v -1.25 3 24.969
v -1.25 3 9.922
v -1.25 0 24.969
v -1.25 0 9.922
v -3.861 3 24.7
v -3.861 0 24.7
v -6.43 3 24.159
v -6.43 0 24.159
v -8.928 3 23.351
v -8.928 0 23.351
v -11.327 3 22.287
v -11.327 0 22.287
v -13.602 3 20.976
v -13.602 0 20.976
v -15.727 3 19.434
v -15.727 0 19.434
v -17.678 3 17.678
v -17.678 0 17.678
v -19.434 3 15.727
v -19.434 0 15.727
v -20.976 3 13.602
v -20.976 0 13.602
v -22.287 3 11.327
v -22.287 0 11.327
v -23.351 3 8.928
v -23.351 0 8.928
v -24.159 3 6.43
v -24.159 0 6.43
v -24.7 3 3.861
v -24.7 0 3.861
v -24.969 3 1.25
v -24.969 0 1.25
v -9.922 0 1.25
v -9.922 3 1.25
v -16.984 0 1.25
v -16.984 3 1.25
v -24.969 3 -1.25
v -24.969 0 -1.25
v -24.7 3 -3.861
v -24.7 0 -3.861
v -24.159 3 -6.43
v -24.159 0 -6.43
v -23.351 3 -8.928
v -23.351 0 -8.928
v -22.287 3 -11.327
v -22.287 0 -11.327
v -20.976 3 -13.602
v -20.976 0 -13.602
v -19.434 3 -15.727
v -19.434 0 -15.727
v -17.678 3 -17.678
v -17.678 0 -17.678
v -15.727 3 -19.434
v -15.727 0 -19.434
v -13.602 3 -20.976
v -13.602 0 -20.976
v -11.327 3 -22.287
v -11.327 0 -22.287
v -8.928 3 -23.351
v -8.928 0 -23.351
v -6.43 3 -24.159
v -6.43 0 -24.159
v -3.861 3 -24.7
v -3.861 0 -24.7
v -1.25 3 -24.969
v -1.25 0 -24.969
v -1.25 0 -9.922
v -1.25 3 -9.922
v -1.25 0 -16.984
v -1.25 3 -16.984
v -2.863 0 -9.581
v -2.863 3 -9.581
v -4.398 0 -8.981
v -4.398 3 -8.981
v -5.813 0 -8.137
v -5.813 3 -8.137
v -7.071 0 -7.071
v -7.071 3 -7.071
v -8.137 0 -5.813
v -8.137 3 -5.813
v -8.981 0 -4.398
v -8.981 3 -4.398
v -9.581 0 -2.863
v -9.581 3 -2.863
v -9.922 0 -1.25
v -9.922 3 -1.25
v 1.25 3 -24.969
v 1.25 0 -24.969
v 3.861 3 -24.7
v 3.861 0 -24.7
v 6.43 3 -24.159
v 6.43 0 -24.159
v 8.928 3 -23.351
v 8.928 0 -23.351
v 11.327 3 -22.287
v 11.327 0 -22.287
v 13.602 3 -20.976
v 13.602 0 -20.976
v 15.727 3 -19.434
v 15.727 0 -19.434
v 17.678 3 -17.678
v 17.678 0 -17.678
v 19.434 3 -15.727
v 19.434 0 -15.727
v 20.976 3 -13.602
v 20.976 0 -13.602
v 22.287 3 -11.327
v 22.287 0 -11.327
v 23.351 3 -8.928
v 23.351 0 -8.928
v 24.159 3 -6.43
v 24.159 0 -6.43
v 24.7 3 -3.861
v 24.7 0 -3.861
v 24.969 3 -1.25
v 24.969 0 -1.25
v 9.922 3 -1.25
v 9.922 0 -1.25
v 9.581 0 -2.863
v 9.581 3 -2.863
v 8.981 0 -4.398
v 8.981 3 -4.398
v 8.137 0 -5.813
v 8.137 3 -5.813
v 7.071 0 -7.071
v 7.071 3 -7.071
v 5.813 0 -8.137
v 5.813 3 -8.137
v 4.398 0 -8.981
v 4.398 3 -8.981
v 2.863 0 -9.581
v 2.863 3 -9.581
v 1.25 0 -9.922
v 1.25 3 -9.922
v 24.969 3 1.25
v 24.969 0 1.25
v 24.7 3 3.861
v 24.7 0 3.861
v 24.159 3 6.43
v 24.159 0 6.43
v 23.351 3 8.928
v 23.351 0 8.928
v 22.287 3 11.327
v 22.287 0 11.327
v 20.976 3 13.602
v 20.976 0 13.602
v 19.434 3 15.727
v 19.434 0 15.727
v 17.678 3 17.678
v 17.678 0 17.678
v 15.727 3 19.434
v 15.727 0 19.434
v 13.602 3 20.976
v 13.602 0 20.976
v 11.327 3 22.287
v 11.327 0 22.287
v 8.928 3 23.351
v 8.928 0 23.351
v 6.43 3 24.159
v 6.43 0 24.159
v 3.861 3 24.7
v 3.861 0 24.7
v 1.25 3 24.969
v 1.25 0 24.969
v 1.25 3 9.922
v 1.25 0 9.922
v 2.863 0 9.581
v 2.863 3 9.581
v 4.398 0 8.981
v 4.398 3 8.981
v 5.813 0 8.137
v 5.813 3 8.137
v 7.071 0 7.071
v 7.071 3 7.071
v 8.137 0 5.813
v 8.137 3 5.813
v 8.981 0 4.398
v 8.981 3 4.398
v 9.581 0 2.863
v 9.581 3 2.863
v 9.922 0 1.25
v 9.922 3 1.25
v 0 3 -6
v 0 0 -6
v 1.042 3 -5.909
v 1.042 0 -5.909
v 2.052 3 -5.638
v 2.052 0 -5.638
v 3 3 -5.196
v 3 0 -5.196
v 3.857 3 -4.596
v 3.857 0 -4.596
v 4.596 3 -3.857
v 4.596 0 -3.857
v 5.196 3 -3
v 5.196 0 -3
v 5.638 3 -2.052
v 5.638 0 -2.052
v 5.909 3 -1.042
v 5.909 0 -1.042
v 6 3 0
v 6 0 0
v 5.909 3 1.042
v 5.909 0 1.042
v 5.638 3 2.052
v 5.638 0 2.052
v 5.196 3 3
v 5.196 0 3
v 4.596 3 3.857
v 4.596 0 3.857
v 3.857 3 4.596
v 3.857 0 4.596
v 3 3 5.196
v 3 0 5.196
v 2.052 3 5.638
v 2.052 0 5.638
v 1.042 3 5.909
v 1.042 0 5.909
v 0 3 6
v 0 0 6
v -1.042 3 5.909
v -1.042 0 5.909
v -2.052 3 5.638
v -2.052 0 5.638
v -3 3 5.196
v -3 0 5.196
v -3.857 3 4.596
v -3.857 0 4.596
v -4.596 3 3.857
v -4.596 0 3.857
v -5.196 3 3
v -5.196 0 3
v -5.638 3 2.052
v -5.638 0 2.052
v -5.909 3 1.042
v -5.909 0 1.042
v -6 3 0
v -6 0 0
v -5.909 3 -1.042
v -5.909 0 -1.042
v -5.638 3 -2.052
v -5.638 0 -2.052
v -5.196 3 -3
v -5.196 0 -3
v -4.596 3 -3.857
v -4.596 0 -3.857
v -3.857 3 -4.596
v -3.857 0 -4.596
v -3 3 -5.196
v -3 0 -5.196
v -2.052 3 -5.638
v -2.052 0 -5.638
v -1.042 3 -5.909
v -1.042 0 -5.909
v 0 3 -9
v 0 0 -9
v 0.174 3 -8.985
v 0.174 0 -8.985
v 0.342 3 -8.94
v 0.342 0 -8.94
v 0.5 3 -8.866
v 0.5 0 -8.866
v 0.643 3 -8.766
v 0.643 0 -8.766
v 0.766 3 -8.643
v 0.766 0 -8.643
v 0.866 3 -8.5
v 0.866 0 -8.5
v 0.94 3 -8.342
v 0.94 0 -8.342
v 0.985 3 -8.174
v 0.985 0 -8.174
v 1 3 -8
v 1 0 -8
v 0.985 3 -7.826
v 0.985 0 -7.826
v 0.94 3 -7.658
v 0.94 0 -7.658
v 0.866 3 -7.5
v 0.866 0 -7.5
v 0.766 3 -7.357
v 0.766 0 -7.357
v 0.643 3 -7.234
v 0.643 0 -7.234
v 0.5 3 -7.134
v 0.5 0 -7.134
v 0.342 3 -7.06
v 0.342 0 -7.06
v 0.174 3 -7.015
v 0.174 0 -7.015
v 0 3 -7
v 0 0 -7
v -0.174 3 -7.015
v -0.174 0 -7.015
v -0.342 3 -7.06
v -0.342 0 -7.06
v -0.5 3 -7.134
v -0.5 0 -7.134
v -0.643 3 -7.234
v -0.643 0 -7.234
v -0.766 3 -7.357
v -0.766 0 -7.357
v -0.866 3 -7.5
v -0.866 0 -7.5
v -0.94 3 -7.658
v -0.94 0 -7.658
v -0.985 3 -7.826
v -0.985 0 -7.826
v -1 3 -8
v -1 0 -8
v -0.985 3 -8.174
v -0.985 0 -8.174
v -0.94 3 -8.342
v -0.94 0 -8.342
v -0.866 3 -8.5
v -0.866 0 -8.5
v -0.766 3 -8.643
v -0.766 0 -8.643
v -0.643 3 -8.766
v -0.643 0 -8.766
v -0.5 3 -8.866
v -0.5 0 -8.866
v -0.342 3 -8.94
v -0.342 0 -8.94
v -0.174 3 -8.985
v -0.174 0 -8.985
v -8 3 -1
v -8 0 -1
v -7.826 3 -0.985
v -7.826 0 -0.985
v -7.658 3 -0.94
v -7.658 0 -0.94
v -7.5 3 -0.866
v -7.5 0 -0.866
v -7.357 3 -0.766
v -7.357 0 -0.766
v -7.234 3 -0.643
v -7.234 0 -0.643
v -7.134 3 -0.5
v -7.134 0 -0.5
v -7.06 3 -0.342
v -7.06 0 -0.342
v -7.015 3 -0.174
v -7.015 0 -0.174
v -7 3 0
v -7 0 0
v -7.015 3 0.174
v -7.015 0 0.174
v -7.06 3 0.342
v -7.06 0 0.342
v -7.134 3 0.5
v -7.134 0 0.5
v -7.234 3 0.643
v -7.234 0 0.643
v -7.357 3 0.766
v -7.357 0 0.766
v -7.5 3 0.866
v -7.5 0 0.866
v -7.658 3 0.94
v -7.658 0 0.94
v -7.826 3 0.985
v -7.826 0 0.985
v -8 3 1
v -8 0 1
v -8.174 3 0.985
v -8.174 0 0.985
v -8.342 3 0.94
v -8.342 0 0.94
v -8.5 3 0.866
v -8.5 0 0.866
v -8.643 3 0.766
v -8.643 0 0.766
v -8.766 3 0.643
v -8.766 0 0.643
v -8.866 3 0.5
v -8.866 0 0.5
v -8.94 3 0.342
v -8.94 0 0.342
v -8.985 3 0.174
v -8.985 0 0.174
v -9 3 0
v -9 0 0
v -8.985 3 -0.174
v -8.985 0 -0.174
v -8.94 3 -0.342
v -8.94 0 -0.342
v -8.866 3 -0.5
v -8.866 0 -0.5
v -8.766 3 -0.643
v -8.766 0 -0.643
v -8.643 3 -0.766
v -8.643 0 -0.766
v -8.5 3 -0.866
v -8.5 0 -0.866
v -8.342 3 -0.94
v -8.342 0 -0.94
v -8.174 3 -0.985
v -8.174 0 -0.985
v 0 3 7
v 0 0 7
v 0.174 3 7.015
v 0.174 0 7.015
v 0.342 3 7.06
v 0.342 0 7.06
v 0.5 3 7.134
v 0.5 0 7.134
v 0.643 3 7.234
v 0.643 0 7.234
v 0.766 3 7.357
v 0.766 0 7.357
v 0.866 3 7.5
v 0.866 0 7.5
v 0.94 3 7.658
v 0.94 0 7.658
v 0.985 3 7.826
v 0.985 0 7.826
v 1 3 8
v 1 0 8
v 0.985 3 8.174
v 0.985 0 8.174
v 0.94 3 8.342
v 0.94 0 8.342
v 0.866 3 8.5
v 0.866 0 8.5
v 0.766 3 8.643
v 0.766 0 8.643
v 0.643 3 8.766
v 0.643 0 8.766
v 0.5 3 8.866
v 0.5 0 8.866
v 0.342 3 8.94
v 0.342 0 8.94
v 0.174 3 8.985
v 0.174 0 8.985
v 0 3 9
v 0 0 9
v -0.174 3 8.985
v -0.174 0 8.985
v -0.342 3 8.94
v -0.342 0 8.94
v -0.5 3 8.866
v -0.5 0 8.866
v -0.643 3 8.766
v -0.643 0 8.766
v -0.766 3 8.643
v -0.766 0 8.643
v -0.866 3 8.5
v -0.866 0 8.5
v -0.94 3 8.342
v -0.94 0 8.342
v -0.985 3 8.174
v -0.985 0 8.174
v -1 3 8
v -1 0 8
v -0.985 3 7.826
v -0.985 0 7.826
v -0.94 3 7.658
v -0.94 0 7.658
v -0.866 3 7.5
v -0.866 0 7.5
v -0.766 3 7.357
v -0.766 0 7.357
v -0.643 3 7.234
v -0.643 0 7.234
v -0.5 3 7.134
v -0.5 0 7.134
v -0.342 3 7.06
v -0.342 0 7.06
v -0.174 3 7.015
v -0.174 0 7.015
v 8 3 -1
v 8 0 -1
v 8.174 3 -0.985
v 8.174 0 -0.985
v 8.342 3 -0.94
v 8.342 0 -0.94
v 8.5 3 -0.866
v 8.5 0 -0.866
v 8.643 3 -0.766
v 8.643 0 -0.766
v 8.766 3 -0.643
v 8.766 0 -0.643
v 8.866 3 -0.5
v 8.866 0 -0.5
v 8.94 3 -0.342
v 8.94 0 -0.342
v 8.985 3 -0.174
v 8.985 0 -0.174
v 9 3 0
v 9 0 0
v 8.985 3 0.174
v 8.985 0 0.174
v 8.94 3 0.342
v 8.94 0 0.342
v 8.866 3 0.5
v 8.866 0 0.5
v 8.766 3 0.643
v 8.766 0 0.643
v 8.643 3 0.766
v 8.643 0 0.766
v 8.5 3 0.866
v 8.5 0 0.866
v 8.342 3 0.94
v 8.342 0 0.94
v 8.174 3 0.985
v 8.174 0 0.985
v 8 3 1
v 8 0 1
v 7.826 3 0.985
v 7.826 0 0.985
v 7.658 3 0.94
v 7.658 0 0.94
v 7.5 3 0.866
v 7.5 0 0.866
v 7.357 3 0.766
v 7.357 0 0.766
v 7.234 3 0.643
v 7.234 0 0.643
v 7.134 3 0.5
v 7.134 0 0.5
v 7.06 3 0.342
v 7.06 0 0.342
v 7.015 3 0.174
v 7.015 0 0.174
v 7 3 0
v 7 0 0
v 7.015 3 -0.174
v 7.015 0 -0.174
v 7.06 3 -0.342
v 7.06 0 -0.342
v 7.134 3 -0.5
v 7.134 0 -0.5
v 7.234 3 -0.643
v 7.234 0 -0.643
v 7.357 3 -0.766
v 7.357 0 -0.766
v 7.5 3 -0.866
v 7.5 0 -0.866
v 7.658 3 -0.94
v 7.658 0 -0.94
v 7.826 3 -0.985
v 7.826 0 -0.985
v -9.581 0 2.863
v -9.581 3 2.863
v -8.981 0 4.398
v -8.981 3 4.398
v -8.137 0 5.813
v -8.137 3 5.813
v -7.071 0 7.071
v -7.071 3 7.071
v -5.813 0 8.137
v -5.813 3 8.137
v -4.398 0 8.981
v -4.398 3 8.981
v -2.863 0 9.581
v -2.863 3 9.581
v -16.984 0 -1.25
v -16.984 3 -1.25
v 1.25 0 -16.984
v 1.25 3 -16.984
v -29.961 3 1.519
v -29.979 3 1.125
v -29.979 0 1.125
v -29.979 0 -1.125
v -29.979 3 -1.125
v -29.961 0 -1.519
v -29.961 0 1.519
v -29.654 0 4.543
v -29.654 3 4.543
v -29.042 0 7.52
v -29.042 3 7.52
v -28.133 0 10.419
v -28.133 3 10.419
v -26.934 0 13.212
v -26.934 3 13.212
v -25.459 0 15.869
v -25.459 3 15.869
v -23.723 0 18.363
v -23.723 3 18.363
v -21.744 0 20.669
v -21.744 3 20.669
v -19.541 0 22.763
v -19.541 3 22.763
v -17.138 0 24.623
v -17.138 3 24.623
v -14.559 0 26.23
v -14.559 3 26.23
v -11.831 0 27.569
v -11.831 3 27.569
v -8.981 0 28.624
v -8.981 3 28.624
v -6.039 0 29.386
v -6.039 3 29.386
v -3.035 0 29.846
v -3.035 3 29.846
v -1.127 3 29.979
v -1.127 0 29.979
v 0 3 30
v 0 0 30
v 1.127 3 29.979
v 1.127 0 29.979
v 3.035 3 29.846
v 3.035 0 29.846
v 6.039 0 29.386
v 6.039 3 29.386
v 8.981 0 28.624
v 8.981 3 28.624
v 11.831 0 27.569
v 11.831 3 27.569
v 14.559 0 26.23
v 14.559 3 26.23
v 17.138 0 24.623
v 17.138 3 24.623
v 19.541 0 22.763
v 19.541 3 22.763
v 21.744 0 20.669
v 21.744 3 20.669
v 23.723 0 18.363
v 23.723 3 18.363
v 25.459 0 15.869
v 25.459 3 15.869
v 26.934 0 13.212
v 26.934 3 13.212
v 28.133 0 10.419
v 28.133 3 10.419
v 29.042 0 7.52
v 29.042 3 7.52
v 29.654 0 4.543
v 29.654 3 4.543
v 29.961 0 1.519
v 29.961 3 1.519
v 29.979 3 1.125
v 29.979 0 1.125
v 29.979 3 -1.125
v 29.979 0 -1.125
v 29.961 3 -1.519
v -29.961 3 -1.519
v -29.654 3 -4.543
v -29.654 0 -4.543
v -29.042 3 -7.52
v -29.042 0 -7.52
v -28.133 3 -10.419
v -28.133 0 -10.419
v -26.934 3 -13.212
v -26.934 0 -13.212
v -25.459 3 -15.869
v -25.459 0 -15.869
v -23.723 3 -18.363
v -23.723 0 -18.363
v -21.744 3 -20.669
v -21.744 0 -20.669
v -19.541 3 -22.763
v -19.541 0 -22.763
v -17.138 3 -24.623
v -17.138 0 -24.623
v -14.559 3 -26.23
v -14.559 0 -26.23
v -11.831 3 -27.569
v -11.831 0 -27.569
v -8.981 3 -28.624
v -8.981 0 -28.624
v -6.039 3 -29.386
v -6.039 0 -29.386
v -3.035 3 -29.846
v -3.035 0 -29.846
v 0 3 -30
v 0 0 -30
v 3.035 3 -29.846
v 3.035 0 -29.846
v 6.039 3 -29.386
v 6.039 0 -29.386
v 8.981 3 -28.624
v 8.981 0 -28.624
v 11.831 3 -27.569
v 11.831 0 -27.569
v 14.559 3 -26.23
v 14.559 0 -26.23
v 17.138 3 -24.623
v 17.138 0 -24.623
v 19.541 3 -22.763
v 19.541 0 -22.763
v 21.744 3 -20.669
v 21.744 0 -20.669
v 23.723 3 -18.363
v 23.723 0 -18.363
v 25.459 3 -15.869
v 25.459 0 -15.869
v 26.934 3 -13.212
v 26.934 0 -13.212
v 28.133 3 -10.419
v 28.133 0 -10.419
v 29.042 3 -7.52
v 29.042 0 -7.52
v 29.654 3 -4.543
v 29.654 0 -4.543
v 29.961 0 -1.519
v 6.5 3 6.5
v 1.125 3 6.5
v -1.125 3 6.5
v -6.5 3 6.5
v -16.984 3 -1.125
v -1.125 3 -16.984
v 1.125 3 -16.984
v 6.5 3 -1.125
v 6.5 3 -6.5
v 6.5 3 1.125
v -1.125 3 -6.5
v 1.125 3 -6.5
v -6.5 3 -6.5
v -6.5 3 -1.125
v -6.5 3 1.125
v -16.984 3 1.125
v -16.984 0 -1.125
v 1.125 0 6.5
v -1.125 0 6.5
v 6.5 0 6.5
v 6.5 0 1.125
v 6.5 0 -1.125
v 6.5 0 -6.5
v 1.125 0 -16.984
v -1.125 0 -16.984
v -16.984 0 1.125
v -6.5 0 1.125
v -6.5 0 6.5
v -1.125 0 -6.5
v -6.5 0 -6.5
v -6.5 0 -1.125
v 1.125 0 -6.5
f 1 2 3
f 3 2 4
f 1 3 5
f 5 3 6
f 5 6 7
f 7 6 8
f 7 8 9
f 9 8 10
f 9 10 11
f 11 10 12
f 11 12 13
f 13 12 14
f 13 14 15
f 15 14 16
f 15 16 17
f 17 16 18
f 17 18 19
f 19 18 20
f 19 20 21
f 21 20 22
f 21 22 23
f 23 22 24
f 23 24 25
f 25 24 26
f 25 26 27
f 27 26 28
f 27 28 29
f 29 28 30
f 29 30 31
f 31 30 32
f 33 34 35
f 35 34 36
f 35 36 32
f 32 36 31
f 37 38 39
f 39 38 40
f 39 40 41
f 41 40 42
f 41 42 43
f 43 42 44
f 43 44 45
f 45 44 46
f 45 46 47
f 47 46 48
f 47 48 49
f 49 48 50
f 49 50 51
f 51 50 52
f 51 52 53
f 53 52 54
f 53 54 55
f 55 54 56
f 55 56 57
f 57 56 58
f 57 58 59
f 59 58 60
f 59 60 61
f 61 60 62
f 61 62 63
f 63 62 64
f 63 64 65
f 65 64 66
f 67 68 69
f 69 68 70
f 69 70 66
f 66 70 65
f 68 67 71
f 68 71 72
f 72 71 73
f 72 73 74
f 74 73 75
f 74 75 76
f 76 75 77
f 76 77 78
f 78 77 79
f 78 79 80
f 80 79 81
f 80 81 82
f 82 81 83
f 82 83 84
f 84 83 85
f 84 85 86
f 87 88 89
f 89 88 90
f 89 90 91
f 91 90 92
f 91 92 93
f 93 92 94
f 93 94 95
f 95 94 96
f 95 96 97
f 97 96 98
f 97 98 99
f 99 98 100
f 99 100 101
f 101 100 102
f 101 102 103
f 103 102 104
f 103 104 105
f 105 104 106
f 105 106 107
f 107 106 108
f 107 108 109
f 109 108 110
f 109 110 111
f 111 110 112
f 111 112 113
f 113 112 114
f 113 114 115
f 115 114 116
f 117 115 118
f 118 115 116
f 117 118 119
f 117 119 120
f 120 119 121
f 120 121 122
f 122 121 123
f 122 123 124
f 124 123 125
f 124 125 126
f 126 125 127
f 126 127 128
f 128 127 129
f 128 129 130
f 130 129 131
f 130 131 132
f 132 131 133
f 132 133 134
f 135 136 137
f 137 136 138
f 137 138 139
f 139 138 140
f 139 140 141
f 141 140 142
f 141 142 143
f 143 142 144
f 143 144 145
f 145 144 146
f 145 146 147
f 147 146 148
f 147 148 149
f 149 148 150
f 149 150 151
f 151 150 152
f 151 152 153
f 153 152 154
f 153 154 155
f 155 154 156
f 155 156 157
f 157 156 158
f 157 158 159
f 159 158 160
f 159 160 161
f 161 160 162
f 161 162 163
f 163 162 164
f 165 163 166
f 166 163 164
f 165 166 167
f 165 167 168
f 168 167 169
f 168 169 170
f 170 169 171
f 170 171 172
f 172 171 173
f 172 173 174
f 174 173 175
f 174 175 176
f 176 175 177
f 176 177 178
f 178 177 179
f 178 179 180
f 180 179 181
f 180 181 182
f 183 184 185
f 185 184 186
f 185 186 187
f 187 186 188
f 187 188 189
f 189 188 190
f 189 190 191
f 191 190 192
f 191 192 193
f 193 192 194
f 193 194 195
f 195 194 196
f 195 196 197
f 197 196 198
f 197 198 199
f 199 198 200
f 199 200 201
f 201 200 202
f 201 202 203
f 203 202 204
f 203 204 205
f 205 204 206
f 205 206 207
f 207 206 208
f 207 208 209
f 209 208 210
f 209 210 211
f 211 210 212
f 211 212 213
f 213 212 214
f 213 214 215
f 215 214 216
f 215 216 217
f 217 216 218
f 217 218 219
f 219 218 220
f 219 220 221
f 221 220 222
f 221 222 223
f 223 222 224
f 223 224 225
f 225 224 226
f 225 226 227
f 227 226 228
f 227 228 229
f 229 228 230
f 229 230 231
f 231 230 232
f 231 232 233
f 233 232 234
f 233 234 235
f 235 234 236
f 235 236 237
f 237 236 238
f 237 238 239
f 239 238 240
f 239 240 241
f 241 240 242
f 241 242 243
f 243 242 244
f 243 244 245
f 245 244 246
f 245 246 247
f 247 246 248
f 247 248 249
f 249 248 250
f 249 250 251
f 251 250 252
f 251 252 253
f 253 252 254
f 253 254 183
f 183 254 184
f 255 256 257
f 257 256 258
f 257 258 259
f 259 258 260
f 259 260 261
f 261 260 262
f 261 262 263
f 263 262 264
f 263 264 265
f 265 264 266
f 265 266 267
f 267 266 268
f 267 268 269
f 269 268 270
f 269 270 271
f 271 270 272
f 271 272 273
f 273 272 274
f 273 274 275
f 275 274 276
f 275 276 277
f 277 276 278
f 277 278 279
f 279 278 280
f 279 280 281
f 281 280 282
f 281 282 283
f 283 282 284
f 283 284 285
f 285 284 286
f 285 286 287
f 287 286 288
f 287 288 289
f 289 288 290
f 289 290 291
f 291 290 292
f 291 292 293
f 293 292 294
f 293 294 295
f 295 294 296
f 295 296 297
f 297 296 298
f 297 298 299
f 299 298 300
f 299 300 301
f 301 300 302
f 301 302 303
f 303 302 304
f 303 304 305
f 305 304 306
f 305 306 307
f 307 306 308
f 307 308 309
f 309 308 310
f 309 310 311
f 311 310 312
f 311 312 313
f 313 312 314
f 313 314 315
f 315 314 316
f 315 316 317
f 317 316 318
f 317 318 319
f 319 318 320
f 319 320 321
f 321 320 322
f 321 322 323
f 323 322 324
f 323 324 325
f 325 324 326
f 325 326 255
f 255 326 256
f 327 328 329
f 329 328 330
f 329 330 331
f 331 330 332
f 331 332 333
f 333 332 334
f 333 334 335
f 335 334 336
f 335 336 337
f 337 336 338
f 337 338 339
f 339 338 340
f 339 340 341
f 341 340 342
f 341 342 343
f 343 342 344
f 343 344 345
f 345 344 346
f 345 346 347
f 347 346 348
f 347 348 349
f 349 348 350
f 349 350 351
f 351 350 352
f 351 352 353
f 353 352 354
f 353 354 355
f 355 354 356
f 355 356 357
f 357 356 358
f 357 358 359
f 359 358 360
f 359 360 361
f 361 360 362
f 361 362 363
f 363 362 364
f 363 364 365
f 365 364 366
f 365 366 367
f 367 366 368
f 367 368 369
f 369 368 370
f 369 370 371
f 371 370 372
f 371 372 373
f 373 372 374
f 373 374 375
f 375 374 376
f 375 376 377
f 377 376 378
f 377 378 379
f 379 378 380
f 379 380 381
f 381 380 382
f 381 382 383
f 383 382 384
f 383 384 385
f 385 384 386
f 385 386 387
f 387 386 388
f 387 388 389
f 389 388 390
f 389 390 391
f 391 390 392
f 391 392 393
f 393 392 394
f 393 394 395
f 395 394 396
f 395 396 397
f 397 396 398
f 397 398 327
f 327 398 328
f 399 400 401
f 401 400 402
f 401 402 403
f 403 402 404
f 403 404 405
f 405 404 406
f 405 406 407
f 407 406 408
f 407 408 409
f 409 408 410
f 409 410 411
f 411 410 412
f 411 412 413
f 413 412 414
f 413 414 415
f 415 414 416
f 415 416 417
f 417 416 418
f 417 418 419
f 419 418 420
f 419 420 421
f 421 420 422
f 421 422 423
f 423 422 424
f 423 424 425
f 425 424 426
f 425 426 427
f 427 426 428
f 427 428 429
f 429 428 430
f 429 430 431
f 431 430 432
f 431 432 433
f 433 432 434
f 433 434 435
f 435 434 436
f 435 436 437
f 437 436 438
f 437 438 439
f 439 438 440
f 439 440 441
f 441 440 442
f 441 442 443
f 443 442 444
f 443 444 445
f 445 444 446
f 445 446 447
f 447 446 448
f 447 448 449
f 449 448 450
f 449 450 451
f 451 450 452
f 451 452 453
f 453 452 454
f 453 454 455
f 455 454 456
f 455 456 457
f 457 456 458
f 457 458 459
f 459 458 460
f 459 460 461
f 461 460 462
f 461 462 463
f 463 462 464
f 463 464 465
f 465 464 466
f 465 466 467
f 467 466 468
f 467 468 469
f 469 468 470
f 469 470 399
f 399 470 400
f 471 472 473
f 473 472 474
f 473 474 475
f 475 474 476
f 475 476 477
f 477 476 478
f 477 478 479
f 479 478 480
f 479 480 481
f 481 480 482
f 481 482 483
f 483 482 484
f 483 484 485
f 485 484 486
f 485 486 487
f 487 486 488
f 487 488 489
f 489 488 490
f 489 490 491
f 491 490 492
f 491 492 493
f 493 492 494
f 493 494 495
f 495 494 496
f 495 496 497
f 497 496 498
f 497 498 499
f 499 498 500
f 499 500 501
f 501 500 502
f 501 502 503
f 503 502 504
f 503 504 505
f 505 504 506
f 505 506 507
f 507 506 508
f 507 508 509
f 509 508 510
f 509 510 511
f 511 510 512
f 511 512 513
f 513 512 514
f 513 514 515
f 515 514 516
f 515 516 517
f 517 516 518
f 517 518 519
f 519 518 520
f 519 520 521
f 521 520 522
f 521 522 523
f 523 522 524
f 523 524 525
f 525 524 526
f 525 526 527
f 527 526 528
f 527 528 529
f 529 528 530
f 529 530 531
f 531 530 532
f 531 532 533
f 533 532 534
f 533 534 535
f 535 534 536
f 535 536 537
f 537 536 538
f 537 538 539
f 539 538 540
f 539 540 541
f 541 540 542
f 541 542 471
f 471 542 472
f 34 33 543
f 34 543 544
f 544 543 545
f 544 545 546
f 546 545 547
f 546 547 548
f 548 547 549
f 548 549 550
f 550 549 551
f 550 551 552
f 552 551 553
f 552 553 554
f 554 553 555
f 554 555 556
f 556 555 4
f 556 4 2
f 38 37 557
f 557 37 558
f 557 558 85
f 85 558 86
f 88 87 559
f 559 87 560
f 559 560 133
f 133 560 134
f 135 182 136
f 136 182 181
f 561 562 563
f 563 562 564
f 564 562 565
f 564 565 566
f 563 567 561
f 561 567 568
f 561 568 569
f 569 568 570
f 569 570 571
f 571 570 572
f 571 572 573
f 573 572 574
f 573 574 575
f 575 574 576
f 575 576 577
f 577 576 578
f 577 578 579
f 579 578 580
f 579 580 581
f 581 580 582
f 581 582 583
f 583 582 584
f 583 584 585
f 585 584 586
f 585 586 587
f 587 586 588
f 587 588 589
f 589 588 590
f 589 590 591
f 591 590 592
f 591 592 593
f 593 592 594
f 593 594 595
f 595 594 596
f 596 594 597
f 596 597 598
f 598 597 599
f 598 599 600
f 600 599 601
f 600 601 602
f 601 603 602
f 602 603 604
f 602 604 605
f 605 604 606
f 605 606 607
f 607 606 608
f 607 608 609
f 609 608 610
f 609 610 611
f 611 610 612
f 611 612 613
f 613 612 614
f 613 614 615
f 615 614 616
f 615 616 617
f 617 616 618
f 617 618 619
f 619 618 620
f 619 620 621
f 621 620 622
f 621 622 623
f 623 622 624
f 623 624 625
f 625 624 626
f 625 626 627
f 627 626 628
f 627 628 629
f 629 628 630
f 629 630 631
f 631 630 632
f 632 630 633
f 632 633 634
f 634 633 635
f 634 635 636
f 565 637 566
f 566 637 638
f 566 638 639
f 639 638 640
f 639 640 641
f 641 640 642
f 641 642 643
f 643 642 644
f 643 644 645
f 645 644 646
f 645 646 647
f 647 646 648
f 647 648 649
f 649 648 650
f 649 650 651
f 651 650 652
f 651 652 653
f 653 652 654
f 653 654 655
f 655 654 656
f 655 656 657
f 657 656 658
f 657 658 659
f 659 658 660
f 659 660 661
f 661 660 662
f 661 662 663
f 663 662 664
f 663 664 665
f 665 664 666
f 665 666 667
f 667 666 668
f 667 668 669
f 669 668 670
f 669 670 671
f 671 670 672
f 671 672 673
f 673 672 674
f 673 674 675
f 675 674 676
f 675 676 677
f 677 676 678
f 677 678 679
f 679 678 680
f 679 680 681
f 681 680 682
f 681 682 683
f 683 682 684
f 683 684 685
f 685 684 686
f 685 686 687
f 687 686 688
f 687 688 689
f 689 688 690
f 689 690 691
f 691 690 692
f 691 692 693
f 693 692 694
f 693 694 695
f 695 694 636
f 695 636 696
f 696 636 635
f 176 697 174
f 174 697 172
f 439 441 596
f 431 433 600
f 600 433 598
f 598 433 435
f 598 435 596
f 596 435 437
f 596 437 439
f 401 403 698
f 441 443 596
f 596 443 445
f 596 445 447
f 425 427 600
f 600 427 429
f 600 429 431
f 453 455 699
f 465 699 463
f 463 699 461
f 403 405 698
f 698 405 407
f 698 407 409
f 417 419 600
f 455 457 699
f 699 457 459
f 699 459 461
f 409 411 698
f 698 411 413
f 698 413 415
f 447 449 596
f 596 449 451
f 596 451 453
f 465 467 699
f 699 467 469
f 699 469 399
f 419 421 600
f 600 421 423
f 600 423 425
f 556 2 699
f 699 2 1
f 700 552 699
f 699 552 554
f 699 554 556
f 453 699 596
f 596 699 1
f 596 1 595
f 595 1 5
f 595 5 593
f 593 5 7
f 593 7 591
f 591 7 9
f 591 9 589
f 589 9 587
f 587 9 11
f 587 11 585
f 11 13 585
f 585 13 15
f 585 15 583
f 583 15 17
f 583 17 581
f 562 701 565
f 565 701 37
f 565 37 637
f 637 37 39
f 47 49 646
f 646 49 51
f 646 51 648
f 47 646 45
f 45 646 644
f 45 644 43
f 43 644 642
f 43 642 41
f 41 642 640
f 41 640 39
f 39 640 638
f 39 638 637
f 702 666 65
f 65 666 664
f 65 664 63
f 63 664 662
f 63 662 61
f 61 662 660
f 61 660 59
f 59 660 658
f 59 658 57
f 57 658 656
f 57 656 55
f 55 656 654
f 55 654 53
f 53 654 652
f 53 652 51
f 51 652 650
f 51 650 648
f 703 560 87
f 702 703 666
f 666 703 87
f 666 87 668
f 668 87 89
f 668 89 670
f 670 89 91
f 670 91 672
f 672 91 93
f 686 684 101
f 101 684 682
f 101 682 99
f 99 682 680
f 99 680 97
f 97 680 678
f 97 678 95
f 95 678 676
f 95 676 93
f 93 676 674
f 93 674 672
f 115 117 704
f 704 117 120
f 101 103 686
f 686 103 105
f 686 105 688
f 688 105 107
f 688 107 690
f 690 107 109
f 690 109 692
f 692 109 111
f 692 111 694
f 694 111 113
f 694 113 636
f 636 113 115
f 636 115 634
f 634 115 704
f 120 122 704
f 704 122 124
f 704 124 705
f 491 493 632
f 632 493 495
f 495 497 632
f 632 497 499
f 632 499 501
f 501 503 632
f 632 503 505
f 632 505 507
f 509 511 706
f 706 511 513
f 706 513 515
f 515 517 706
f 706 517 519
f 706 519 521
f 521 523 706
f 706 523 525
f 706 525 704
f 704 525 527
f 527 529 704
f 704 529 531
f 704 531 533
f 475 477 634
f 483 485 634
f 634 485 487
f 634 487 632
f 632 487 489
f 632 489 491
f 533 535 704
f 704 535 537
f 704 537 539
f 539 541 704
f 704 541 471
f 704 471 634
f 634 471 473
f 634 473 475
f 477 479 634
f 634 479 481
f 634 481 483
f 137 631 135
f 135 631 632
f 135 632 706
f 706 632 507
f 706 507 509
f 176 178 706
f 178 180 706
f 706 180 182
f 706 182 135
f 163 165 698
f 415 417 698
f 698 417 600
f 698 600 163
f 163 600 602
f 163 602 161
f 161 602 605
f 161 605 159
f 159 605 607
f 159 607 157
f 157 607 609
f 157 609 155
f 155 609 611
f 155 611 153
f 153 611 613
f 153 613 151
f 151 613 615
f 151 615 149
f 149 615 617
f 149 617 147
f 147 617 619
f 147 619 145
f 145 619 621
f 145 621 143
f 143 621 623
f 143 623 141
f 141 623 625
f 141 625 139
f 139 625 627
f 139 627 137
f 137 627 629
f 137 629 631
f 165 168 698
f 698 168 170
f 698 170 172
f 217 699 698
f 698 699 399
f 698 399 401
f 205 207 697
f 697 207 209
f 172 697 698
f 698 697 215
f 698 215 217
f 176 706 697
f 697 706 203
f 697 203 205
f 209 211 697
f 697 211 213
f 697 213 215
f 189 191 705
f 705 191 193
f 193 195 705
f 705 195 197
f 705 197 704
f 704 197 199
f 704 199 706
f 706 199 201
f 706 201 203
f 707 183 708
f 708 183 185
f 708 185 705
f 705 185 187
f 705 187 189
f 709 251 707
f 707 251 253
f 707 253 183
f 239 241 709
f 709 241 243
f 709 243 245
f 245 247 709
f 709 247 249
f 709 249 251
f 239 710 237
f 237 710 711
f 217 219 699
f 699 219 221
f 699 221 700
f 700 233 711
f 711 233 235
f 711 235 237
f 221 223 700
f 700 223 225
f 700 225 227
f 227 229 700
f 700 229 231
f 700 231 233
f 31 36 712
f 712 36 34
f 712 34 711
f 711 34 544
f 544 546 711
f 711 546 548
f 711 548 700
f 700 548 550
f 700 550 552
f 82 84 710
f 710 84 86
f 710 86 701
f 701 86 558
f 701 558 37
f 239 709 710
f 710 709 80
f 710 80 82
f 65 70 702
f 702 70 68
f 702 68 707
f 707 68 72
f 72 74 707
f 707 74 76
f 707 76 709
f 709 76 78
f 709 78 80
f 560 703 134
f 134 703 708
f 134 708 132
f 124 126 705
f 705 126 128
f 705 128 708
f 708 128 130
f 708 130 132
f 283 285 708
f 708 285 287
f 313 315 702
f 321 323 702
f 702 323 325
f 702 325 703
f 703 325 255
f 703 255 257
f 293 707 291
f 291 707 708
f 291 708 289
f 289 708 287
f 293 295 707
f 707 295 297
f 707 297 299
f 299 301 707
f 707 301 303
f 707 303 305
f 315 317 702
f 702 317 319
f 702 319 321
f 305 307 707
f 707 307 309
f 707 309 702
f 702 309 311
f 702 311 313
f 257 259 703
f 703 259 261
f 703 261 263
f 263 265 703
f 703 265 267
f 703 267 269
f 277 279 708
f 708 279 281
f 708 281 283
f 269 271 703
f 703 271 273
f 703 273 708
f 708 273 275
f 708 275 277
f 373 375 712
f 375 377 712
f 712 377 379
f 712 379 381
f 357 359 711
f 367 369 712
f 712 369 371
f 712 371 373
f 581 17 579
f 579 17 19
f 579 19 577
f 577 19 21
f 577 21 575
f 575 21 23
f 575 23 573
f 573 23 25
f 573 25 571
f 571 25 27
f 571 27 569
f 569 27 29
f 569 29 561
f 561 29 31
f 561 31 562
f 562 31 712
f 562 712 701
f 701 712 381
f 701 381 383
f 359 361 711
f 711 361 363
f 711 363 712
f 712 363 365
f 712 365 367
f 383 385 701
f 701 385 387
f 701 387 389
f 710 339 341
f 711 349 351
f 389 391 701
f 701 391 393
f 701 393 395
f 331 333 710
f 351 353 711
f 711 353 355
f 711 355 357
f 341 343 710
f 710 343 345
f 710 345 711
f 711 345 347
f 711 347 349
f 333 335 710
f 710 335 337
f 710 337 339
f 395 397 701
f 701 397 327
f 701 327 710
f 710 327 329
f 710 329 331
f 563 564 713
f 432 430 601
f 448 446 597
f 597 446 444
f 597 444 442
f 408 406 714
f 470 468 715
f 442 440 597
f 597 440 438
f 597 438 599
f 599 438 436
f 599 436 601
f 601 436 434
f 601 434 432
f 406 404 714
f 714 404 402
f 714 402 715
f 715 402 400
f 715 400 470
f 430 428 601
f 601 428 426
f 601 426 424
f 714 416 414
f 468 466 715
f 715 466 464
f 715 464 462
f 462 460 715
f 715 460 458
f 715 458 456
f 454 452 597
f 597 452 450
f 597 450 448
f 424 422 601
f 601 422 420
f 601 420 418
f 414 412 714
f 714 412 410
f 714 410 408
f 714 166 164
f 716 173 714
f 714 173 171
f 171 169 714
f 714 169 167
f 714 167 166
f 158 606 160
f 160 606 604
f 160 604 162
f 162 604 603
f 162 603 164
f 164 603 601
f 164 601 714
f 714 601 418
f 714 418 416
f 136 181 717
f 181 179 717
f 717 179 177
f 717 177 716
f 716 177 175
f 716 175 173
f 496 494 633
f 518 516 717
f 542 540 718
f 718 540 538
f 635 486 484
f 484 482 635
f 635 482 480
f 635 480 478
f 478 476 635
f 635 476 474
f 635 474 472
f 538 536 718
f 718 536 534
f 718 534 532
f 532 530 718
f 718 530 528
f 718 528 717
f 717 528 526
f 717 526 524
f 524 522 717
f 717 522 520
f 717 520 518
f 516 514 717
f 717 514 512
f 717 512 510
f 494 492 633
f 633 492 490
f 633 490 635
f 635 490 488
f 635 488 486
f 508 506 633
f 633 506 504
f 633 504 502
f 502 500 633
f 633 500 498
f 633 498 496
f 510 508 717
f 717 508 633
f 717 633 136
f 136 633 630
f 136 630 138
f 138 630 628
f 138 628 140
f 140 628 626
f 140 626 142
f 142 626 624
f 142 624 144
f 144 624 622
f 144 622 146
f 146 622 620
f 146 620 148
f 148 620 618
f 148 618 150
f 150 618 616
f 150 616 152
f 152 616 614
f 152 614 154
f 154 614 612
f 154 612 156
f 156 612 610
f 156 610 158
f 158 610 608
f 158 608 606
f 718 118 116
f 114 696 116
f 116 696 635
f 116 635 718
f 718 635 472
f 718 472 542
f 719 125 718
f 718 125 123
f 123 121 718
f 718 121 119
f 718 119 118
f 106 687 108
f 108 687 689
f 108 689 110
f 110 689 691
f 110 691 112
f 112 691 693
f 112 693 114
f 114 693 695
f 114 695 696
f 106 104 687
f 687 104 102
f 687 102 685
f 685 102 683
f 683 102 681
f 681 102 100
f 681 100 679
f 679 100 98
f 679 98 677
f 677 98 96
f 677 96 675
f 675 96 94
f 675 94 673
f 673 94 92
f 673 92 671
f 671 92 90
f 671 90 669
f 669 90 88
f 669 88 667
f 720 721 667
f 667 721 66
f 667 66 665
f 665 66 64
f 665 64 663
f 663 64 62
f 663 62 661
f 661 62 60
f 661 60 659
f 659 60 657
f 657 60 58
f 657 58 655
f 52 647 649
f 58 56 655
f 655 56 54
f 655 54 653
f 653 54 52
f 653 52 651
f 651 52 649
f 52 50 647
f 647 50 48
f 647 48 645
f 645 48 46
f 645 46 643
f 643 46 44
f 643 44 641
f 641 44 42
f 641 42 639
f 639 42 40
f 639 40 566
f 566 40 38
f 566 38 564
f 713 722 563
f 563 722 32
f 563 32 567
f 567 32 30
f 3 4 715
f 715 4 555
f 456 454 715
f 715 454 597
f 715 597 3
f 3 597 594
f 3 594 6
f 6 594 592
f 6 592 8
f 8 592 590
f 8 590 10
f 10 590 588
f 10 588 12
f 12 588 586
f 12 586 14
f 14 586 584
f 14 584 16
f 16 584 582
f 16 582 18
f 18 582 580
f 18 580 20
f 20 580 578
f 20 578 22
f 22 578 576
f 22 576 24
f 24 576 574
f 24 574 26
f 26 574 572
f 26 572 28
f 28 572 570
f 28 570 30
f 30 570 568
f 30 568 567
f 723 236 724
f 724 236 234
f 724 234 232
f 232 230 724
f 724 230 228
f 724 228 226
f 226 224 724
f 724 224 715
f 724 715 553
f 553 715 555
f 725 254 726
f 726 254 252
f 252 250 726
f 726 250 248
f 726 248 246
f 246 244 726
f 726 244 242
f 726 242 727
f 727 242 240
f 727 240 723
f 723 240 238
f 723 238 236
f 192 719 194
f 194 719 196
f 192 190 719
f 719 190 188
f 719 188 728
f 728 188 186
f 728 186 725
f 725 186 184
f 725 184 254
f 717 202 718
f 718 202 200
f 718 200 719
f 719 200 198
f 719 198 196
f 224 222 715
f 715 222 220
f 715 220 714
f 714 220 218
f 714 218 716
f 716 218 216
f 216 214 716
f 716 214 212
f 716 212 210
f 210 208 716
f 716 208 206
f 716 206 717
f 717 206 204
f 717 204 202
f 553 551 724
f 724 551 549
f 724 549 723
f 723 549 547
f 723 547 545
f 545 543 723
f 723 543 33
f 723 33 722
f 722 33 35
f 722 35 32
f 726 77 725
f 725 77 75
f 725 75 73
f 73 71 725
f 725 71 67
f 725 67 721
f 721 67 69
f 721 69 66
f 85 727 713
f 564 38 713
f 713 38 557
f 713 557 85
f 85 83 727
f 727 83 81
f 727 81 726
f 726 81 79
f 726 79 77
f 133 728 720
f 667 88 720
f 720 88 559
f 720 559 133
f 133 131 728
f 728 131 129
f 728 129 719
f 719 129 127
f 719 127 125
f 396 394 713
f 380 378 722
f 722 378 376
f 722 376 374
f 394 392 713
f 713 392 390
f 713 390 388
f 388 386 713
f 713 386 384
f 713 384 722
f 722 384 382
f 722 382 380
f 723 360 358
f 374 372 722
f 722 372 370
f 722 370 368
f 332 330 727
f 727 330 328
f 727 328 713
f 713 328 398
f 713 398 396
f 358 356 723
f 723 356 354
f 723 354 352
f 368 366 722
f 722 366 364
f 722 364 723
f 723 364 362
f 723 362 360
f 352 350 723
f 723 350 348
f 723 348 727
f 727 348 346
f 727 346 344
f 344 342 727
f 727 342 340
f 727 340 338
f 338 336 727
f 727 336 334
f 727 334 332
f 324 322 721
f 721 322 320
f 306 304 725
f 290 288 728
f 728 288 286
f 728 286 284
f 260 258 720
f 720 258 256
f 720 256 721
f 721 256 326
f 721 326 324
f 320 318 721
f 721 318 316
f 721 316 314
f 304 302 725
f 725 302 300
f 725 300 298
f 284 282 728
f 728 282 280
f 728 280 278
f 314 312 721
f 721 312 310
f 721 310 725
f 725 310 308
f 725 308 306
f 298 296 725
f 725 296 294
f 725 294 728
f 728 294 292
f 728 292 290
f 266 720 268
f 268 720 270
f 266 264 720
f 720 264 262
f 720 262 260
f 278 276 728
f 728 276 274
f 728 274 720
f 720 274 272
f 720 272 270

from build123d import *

# Parameters (mm, degrees)
SKETCH_1_R      = 30
SKETCH_1_R_2    = 25
SKETCH_1_R_3    = 10
SKETCH_1_R_4    = 1
SKETCH_1_R_5    = 6
EXTRUDE_1_DEPTH = 3


with BuildPart() as part:
    # 草图1 → 凸台-拉伸1 (new body)
    # profile 1 of 6: a face of its own
    with BuildSketch(Plane(origin=(0, 0, 0), x_dir=(1, 0, 0), z_dir=(0, 1, 0))):
        with Locations(Location((0, 0, 0), (0, 0, 270))):
            Circle(SKETCH_1_R)
        Circle(SKETCH_1_R_2, mode=Mode.SUBTRACT)
    # profile 2 of 6: a face of its own
    with BuildSketch(Plane(origin=(0, 0, 0), x_dir=(1, 0, 0), z_dir=(0, 1, 0))):
        with BuildLine():
            ThreePointArc((-9.921567416, -1.25), (-10, 0), (-9.921567416, 1.25))
            Line((-9.921567416, 1.25), (-24.968730444, 1.25))
            ThreePointArc((-24.968730444, 1.25), (-25, 0), (-24.968730444, -1.25))
            Line((-24.968730444, -1.25), (-9.921567416, -1.25))
        make_face()
    # profile 3 of 6: a face of its own
    with BuildSketch(Plane(origin=(0, 0, 0), x_dir=(1, 0, 0), z_dir=(0, 1, 0))):
        with BuildLine():
            ThreePointArc((-1.25, 9.921567416), (0, 10), (1.25, 9.921567416))
            Line((1.25, 9.921567416), (1.25, 24.968730444))
            ThreePointArc((1.25, 24.968730444), (0, 25), (-1.25, 24.968730444))
            Line((-1.25, 24.968730444), (-1.25, 9.921567416))
        make_face()
    # profile 4 of 6: a face of its own
    with BuildSketch(Plane(origin=(0, 0, 0), x_dir=(1, 0, 0), z_dir=(0, 1, 0))):
        Circle(SKETCH_1_R_3)
        with Locations(Location((8, 0, 0), (0, 0, 270))):
            Circle(SKETCH_1_R_4, mode=Mode.SUBTRACT)
        with Locations(Location((0, -8, 0), (0, 0, 270))):
            Circle(SKETCH_1_R_4, mode=Mode.SUBTRACT)
        with Locations(Location((-8, 0, 0), (0, 0, 270))):
            Circle(SKETCH_1_R_4, mode=Mode.SUBTRACT)
        with Locations(Location((0, 8, 0), (0, 0, 270))):
            Circle(SKETCH_1_R_4, mode=Mode.SUBTRACT)
        with Locations(Location((0, 0, 0), (0, 0, 270))):
            Circle(SKETCH_1_R_5, mode=Mode.SUBTRACT)
    # profile 5 of 6: a face of its own
    with BuildSketch(Plane(origin=(0, 0, 0), x_dir=(1, 0, 0), z_dir=(0, 1, 0))):
        with BuildLine():
            Line((24.968730444, 1.25), (9.921567416, 1.25))
            ThreePointArc((9.921567416, 1.25), (9.980372592, 0.626229125), (10, 0))
            ThreePointArc((10, 0), (9.980372592, -0.626229125), (9.921567416, -1.25))
            Line((9.921567416, -1.25), (24.968730444, -1.25))
            ThreePointArc((24.968730444, -1.25), (24.992181388, -0.625195526), (25, 0))
            ThreePointArc((25, 0), (24.992181388, 0.625195526), (24.968730444, 1.25))
        make_face()
    # profile 6 of 6: a face of its own
    with BuildSketch(Plane(origin=(0, 0, 0), x_dir=(1, 0, 0), z_dir=(0, 1, 0))):
        with BuildLine():
            Line((1.25, -24.968730444), (1.25, -9.921567416))
            ThreePointArc((1.25, -9.921567416), (0, -10), (-1.25, -9.921567416))
            Line((-1.25, -9.921567416), (-1.25, -24.968730444))
            ThreePointArc((-1.25, -24.968730444), (0, -25), (1.25, -24.968730444))
        make_face()
    extrude(amount=EXTRUDE_1_DEPTH)


solid = part.part
